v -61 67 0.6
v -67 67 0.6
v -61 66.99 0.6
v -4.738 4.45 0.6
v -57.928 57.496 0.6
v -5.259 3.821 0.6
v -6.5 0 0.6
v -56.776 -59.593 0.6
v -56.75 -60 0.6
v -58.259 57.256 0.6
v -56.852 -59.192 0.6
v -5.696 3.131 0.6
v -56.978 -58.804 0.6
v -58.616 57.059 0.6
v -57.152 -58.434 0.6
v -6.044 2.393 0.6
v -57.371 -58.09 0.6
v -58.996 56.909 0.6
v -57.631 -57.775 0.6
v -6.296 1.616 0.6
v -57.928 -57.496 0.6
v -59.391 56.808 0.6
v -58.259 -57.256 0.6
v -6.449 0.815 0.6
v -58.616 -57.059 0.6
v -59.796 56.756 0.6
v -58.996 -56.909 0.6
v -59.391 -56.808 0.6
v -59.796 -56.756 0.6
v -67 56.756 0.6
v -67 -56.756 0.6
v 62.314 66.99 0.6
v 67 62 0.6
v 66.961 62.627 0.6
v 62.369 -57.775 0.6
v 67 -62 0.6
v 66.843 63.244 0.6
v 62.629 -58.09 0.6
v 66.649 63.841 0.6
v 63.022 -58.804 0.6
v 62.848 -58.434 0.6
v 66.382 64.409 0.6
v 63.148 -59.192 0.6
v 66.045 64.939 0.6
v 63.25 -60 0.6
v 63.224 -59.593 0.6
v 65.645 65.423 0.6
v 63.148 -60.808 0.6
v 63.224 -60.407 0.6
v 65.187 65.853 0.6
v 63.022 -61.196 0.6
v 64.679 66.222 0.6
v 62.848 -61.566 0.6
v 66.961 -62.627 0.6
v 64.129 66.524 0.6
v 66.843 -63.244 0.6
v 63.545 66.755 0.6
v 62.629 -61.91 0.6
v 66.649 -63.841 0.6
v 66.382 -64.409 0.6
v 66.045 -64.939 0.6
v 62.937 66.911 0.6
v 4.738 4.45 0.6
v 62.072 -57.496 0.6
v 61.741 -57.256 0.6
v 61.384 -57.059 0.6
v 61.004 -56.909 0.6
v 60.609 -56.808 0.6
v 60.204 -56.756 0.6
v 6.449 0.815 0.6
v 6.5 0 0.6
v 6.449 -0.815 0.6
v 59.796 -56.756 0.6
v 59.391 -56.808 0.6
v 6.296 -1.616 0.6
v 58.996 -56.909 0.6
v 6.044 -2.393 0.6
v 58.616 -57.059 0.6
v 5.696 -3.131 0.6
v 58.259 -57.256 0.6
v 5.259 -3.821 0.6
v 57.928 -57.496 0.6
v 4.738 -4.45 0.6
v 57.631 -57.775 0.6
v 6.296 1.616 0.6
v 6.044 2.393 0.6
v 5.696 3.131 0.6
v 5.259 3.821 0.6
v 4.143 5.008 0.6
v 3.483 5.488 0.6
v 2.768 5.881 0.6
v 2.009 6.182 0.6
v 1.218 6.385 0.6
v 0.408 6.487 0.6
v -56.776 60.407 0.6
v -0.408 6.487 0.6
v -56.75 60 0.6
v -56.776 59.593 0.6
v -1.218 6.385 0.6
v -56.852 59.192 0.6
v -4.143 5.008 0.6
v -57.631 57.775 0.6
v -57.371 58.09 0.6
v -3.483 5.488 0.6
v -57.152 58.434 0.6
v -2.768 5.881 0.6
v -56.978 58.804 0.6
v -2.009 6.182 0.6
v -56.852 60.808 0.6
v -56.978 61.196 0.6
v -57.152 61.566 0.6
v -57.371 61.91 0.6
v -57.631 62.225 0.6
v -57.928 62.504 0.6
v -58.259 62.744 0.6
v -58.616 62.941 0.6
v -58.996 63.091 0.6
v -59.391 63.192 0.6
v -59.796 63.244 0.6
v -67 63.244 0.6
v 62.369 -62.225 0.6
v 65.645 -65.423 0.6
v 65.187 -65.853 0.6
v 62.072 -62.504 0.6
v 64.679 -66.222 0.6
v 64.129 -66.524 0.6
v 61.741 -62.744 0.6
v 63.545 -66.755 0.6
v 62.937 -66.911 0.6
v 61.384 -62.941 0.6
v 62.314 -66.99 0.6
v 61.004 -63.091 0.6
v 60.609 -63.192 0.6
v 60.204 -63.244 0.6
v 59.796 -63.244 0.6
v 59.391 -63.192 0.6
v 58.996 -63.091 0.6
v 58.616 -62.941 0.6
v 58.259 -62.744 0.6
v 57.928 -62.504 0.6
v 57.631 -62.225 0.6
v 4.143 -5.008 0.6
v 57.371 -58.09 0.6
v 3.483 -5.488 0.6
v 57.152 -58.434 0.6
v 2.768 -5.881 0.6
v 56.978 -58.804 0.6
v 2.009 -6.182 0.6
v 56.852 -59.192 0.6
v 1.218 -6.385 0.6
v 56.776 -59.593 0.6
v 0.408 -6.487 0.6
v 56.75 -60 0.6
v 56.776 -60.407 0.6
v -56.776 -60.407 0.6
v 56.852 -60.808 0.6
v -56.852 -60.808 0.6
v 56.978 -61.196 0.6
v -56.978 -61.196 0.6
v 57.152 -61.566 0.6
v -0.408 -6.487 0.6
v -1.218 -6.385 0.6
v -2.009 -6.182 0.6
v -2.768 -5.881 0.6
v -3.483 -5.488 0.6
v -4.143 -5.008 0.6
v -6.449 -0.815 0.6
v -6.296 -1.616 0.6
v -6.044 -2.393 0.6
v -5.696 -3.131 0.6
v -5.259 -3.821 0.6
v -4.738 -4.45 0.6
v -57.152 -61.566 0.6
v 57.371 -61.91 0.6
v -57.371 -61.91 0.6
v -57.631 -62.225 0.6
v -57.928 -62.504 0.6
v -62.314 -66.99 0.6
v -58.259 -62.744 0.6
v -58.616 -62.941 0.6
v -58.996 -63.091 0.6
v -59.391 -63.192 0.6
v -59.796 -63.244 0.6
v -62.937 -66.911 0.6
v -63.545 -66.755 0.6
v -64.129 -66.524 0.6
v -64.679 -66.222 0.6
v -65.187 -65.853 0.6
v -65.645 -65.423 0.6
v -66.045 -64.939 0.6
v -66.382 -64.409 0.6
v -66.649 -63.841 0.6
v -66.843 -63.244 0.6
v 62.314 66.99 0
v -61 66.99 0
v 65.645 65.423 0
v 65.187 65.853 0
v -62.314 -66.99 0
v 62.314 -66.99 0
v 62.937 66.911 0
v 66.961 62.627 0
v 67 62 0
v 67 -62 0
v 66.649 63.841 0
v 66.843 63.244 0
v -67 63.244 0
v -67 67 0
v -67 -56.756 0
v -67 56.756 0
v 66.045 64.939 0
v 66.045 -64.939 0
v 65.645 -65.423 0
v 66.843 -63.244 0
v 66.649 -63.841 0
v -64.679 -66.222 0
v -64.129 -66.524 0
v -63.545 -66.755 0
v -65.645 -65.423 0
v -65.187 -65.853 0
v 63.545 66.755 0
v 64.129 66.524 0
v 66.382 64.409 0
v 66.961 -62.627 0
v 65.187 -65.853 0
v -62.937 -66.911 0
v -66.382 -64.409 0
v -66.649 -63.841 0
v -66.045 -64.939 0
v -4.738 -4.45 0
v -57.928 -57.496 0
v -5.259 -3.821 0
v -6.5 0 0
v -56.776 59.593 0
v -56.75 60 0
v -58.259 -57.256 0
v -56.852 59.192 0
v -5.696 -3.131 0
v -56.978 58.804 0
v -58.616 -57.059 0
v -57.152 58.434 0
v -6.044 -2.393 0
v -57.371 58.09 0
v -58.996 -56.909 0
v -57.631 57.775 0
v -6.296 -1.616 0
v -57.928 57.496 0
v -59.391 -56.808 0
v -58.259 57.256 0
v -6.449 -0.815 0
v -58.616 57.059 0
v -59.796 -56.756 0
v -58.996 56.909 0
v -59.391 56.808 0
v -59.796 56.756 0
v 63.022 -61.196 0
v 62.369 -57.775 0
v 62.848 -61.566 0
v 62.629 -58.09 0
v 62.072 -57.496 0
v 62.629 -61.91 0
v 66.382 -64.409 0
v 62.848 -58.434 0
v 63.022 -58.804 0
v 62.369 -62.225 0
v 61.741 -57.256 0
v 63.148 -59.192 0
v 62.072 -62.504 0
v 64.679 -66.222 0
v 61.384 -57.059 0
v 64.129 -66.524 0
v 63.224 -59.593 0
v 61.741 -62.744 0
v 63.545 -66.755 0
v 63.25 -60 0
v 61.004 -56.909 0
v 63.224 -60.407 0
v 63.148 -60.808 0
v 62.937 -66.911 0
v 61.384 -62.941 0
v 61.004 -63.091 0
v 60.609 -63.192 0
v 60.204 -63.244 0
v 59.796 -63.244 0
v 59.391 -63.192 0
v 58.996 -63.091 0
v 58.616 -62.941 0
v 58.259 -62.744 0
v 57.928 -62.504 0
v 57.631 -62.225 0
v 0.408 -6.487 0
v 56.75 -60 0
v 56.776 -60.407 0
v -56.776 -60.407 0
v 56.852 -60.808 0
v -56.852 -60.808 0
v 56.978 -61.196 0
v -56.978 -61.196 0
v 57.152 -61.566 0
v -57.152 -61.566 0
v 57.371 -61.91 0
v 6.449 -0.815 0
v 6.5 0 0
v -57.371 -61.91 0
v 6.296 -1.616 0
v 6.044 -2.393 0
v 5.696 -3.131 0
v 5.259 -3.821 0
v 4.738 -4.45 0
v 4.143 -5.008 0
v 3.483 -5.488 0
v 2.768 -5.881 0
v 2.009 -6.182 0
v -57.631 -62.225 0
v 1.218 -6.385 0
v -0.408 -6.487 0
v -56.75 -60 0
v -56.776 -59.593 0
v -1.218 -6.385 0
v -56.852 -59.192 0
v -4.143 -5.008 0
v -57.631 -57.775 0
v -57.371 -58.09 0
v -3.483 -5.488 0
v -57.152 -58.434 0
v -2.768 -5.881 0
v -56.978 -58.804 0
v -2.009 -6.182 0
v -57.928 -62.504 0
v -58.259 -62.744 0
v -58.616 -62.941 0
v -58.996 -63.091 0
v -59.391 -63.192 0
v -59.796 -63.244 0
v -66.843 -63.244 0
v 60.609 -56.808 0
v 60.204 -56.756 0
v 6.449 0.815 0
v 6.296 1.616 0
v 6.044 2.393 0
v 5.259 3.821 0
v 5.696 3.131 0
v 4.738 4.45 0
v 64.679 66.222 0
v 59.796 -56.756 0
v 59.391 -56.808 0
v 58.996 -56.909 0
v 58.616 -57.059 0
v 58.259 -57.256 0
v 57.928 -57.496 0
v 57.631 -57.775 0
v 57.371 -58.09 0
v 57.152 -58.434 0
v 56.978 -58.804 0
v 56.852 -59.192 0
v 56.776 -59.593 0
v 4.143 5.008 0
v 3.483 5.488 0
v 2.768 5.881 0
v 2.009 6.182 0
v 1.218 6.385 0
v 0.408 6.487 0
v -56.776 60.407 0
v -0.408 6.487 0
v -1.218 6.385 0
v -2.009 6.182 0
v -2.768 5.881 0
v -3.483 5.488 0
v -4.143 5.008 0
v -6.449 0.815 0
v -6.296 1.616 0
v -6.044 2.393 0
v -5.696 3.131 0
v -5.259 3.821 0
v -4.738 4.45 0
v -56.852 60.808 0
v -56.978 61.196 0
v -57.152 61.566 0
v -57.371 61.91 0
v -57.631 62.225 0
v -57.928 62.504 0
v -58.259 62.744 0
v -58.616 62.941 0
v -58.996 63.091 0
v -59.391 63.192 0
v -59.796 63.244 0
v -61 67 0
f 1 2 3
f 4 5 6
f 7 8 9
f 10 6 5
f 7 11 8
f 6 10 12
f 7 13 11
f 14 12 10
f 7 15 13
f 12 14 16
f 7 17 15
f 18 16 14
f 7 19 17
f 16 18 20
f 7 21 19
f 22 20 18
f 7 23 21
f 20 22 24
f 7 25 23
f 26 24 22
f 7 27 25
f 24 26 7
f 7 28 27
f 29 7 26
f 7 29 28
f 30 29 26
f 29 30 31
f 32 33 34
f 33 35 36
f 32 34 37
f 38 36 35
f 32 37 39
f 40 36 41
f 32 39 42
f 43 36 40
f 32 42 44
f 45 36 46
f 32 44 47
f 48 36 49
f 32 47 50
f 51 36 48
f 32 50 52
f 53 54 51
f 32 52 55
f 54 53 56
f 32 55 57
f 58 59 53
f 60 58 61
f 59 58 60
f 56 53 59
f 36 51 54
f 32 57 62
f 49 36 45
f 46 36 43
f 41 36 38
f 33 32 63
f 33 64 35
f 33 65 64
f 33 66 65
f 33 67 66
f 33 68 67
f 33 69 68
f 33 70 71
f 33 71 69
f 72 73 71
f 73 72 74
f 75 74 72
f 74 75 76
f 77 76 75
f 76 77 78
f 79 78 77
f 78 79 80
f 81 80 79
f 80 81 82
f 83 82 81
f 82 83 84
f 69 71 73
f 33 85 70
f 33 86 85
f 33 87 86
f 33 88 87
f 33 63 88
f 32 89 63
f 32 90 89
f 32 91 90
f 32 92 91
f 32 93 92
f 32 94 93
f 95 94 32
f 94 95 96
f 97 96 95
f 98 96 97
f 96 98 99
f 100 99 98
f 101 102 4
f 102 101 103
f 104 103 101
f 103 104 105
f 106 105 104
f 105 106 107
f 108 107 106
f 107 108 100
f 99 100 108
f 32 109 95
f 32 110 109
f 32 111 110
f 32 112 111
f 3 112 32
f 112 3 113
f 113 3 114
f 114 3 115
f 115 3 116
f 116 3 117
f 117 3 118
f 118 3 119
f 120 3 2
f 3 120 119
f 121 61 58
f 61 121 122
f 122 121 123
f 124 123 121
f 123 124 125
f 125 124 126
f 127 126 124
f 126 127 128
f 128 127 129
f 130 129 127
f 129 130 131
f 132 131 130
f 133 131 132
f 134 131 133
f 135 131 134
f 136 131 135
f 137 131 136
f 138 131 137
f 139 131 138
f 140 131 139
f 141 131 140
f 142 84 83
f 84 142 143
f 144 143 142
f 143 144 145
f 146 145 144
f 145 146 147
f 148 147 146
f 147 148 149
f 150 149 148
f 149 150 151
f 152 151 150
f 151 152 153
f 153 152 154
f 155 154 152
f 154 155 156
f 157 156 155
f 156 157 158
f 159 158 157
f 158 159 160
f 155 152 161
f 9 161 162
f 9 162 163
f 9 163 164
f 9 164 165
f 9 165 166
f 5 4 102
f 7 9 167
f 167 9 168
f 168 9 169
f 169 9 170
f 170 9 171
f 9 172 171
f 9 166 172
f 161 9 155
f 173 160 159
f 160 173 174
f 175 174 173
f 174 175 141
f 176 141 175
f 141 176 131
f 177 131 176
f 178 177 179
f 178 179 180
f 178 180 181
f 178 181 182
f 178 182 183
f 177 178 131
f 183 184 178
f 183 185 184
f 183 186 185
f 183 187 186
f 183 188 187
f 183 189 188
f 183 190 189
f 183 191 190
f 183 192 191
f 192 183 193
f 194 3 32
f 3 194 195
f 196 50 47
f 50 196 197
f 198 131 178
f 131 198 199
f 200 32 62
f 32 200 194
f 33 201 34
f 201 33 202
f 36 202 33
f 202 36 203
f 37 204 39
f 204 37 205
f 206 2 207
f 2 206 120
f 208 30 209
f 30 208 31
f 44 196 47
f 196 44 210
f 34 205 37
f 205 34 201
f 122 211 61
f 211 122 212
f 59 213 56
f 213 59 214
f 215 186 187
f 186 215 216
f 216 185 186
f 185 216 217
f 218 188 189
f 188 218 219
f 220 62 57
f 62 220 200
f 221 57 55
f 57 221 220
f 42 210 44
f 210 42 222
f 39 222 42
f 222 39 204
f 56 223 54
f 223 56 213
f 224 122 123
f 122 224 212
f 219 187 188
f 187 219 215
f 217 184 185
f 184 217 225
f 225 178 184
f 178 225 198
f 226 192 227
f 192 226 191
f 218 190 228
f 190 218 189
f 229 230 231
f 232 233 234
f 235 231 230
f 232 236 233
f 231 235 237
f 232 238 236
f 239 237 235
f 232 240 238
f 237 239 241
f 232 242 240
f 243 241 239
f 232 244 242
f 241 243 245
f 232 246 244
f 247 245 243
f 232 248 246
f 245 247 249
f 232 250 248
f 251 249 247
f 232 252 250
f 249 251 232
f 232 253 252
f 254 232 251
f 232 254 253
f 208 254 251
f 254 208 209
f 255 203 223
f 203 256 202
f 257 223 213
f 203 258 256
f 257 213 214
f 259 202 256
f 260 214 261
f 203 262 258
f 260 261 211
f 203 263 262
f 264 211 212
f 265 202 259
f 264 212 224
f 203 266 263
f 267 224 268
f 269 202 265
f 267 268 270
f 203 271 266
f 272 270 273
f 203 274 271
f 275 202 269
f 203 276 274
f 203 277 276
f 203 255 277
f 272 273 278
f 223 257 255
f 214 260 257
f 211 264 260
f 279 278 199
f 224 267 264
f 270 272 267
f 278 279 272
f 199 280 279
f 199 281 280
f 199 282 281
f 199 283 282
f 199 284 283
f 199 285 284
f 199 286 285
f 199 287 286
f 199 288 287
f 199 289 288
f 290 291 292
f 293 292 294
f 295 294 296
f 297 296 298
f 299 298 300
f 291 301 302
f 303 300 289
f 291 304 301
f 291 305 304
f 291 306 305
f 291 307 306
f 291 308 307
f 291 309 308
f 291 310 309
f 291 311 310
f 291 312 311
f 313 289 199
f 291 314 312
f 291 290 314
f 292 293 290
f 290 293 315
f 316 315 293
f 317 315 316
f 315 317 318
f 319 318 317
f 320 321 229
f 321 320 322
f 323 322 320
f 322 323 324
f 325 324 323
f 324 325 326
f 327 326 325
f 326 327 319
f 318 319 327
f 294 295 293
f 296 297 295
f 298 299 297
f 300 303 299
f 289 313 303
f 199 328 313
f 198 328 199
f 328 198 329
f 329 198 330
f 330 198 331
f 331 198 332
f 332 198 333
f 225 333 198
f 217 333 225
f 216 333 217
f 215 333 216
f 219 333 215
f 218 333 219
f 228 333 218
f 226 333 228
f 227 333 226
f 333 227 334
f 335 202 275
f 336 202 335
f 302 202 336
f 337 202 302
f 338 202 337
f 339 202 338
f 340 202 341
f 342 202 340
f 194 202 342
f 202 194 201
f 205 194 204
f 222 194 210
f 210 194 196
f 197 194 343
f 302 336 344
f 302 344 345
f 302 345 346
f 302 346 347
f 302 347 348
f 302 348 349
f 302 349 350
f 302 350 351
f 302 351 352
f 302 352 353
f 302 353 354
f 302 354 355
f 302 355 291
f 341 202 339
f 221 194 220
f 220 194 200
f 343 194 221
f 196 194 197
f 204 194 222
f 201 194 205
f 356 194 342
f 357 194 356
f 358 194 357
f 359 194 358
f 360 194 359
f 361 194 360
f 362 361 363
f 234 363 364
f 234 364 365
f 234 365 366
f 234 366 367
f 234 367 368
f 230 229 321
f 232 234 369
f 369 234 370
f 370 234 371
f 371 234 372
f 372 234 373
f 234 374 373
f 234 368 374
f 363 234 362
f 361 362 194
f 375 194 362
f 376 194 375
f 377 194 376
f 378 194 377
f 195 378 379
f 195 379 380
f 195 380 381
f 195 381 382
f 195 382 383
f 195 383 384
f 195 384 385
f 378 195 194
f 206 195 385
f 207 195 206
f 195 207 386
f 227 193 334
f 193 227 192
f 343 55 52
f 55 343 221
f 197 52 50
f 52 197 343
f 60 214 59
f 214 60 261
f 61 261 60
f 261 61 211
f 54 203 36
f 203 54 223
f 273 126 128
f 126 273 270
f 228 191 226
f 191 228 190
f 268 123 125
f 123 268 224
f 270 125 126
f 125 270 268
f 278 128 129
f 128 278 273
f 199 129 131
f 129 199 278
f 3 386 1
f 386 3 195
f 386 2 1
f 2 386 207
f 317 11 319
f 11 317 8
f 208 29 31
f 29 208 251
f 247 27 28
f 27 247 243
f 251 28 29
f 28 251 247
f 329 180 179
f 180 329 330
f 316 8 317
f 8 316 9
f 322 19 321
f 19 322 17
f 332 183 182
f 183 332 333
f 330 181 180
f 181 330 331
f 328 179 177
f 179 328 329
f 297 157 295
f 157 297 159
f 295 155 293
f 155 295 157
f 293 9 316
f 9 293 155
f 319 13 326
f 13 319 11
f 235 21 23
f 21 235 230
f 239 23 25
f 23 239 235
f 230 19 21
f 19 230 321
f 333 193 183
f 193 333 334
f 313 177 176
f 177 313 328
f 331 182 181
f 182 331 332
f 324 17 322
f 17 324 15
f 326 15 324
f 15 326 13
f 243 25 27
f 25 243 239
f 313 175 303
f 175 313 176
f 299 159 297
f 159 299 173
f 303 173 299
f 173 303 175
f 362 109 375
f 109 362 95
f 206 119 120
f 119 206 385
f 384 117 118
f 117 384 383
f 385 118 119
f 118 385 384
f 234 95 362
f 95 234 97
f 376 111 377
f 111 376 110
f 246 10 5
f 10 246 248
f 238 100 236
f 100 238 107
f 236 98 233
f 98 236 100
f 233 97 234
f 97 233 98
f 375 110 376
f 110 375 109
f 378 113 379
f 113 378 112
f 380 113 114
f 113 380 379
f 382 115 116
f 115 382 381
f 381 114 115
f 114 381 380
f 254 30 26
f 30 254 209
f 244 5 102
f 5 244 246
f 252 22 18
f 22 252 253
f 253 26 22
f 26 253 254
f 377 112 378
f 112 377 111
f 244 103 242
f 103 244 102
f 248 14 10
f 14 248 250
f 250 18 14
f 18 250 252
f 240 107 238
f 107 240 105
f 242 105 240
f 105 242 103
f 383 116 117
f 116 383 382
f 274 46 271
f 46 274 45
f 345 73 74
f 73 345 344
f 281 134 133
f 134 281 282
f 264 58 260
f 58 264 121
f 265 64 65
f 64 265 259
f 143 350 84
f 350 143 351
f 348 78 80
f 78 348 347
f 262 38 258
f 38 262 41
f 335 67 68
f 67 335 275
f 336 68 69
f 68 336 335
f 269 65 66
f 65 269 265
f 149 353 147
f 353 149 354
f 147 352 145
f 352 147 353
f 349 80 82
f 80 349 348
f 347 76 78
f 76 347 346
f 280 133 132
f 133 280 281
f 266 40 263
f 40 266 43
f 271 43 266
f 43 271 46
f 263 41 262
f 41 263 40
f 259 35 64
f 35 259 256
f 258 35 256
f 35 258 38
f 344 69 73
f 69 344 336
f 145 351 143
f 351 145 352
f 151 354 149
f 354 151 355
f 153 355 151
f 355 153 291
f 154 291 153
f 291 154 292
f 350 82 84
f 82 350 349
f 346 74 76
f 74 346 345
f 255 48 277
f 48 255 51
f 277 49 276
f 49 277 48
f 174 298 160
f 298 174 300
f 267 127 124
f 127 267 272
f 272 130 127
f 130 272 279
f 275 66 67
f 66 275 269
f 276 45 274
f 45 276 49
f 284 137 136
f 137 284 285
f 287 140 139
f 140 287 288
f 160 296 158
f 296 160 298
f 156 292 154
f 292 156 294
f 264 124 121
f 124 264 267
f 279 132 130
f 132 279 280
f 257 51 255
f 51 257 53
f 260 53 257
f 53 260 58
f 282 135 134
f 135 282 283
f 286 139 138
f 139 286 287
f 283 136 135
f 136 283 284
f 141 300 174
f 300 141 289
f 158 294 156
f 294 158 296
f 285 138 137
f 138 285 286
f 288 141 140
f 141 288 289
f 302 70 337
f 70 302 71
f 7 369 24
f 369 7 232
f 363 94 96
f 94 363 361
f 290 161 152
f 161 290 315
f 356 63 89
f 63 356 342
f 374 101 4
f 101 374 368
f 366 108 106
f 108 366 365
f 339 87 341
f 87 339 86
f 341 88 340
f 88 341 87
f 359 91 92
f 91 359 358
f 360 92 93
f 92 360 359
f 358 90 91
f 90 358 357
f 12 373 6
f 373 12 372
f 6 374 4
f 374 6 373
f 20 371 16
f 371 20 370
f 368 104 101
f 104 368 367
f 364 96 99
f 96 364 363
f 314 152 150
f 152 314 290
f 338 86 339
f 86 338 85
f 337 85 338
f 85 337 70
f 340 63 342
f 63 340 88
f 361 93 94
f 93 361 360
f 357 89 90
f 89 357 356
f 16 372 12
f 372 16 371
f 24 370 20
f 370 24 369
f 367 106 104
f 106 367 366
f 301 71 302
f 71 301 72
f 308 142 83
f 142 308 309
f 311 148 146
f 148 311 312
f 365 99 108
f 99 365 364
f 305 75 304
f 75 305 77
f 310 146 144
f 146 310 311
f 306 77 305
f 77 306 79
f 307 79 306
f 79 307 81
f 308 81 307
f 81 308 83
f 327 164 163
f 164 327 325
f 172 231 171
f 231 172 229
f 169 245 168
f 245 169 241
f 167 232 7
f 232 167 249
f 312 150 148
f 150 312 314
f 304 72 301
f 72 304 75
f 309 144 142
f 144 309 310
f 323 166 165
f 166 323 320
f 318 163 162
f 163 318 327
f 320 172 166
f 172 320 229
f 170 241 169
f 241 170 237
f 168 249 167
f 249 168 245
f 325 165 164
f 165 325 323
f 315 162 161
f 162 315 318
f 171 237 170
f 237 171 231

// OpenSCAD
$fn = 50;


difference() {
	union() {
		translate(v = [0, 0, 0]) {
			rotate(a = [0, 0, 0]) {
				hull() {
					translate(v = [-62.0000000000, 62.0000000000, 0]) {
						rotate(a = [0, 0, 0]) {
							translate(v = [0, 0, 0]) {
								rotate(a = [0, 0, 0]) {
									cylinder(h = 0.6000000000, r = 5);
								}
							}
						}
					}
					translate(v = [62.0000000000, 62.0000000000, 0]) {
						rotate(a = [0, 0, 0]) {
							translate(v = [0, 0, 0]) {
								rotate(a = [0, 0, 0]) {
									cylinder(h = 0.6000000000, r = 5);
								}
							}
						}
					}
					translate(v = [-62.0000000000, -62.0000000000, 0]) {
						rotate(a = [0, 0, 0]) {
							translate(v = [0, 0, 0]) {
								rotate(a = [0, 0, 0]) {
									cylinder(h = 0.6000000000, r = 5);
								}
							}
						}
					}
					translate(v = [62.0000000000, -62.0000000000, 0]) {
						rotate(a = [0, 0, 0]) {
							translate(v = [0, 0, 0]) {
								rotate(a = [0, 0, 0]) {
									cylinder(h = 0.6000000000, r = 5);
								}
							}
						}
					}
				}
			}
		}
		translate(v = [-67.0000000000, 61.0000000000, 0]) {
			rotate(a = [0, 0, 0]) {
				cube(size = [6, 6, 0.6000000000]);
			}
		}
	}
	union() {
		translate(v = [-67.5000000000, -60.0000000000, -125]) {
			rotate(a = [0, 0, 0]) {
				hull() {
					translate(v = [7.5000000000, 0, 0]) {
						rotate(a = [0, 0, 0]) {
							translate(v = [0, 0, 0]) {
								rotate(a = [0, 0, 0]) {
									cylinder(h = 250, r = 3.2500000000);
								}
							}
						}
					}
					translate(v = [-7.5000000000, 0, 0]) {
						rotate(a = [0, 0, 0]) {
							translate(v = [0, 0, 0]) {
								rotate(a = [0, 0, 0]) {
									cylinder(h = 250, r = 3.2500000000);
								}
							}
						}
					}
				}
			}
		}
		translate(v = [-67.5000000000, 60.0000000000, -125]) {
			rotate(a = [0, 0, 0]) {
				hull() {
					translate(v = [7.5000000000, 0, 0]) {
						rotate(a = [0, 0, 0]) {
							translate(v = [0, 0, 0]) {
								rotate(a = [0, 0, 0]) {
									cylinder(h = 250, r = 3.2500000000);
								}
							}
						}
					}
					translate(v = [-7.5000000000, 0, 0]) {
						rotate(a = [0, 0, 0]) {
							translate(v = [0, 0, 0]) {
								rotate(a = [0, 0, 0]) {
									cylinder(h = 250, r = 3.2500000000);
								}
							}
						}
					}
				}
			}
		}
		translate(v = [60.0000000000, -60.0000000000, -125.0000000000]) {
			rotate(a = [0, 0, 0]) {
				cylinder(h = 250, r = 3.2500000000);
			}
		}
		translate(v = [0, 0, 0.0000000000]) {
			rotate(a = [0, 0, 0]) {
				cylinder(h = 0.6000000000, r = 6.5000000000);
			}
		}
	}
}
